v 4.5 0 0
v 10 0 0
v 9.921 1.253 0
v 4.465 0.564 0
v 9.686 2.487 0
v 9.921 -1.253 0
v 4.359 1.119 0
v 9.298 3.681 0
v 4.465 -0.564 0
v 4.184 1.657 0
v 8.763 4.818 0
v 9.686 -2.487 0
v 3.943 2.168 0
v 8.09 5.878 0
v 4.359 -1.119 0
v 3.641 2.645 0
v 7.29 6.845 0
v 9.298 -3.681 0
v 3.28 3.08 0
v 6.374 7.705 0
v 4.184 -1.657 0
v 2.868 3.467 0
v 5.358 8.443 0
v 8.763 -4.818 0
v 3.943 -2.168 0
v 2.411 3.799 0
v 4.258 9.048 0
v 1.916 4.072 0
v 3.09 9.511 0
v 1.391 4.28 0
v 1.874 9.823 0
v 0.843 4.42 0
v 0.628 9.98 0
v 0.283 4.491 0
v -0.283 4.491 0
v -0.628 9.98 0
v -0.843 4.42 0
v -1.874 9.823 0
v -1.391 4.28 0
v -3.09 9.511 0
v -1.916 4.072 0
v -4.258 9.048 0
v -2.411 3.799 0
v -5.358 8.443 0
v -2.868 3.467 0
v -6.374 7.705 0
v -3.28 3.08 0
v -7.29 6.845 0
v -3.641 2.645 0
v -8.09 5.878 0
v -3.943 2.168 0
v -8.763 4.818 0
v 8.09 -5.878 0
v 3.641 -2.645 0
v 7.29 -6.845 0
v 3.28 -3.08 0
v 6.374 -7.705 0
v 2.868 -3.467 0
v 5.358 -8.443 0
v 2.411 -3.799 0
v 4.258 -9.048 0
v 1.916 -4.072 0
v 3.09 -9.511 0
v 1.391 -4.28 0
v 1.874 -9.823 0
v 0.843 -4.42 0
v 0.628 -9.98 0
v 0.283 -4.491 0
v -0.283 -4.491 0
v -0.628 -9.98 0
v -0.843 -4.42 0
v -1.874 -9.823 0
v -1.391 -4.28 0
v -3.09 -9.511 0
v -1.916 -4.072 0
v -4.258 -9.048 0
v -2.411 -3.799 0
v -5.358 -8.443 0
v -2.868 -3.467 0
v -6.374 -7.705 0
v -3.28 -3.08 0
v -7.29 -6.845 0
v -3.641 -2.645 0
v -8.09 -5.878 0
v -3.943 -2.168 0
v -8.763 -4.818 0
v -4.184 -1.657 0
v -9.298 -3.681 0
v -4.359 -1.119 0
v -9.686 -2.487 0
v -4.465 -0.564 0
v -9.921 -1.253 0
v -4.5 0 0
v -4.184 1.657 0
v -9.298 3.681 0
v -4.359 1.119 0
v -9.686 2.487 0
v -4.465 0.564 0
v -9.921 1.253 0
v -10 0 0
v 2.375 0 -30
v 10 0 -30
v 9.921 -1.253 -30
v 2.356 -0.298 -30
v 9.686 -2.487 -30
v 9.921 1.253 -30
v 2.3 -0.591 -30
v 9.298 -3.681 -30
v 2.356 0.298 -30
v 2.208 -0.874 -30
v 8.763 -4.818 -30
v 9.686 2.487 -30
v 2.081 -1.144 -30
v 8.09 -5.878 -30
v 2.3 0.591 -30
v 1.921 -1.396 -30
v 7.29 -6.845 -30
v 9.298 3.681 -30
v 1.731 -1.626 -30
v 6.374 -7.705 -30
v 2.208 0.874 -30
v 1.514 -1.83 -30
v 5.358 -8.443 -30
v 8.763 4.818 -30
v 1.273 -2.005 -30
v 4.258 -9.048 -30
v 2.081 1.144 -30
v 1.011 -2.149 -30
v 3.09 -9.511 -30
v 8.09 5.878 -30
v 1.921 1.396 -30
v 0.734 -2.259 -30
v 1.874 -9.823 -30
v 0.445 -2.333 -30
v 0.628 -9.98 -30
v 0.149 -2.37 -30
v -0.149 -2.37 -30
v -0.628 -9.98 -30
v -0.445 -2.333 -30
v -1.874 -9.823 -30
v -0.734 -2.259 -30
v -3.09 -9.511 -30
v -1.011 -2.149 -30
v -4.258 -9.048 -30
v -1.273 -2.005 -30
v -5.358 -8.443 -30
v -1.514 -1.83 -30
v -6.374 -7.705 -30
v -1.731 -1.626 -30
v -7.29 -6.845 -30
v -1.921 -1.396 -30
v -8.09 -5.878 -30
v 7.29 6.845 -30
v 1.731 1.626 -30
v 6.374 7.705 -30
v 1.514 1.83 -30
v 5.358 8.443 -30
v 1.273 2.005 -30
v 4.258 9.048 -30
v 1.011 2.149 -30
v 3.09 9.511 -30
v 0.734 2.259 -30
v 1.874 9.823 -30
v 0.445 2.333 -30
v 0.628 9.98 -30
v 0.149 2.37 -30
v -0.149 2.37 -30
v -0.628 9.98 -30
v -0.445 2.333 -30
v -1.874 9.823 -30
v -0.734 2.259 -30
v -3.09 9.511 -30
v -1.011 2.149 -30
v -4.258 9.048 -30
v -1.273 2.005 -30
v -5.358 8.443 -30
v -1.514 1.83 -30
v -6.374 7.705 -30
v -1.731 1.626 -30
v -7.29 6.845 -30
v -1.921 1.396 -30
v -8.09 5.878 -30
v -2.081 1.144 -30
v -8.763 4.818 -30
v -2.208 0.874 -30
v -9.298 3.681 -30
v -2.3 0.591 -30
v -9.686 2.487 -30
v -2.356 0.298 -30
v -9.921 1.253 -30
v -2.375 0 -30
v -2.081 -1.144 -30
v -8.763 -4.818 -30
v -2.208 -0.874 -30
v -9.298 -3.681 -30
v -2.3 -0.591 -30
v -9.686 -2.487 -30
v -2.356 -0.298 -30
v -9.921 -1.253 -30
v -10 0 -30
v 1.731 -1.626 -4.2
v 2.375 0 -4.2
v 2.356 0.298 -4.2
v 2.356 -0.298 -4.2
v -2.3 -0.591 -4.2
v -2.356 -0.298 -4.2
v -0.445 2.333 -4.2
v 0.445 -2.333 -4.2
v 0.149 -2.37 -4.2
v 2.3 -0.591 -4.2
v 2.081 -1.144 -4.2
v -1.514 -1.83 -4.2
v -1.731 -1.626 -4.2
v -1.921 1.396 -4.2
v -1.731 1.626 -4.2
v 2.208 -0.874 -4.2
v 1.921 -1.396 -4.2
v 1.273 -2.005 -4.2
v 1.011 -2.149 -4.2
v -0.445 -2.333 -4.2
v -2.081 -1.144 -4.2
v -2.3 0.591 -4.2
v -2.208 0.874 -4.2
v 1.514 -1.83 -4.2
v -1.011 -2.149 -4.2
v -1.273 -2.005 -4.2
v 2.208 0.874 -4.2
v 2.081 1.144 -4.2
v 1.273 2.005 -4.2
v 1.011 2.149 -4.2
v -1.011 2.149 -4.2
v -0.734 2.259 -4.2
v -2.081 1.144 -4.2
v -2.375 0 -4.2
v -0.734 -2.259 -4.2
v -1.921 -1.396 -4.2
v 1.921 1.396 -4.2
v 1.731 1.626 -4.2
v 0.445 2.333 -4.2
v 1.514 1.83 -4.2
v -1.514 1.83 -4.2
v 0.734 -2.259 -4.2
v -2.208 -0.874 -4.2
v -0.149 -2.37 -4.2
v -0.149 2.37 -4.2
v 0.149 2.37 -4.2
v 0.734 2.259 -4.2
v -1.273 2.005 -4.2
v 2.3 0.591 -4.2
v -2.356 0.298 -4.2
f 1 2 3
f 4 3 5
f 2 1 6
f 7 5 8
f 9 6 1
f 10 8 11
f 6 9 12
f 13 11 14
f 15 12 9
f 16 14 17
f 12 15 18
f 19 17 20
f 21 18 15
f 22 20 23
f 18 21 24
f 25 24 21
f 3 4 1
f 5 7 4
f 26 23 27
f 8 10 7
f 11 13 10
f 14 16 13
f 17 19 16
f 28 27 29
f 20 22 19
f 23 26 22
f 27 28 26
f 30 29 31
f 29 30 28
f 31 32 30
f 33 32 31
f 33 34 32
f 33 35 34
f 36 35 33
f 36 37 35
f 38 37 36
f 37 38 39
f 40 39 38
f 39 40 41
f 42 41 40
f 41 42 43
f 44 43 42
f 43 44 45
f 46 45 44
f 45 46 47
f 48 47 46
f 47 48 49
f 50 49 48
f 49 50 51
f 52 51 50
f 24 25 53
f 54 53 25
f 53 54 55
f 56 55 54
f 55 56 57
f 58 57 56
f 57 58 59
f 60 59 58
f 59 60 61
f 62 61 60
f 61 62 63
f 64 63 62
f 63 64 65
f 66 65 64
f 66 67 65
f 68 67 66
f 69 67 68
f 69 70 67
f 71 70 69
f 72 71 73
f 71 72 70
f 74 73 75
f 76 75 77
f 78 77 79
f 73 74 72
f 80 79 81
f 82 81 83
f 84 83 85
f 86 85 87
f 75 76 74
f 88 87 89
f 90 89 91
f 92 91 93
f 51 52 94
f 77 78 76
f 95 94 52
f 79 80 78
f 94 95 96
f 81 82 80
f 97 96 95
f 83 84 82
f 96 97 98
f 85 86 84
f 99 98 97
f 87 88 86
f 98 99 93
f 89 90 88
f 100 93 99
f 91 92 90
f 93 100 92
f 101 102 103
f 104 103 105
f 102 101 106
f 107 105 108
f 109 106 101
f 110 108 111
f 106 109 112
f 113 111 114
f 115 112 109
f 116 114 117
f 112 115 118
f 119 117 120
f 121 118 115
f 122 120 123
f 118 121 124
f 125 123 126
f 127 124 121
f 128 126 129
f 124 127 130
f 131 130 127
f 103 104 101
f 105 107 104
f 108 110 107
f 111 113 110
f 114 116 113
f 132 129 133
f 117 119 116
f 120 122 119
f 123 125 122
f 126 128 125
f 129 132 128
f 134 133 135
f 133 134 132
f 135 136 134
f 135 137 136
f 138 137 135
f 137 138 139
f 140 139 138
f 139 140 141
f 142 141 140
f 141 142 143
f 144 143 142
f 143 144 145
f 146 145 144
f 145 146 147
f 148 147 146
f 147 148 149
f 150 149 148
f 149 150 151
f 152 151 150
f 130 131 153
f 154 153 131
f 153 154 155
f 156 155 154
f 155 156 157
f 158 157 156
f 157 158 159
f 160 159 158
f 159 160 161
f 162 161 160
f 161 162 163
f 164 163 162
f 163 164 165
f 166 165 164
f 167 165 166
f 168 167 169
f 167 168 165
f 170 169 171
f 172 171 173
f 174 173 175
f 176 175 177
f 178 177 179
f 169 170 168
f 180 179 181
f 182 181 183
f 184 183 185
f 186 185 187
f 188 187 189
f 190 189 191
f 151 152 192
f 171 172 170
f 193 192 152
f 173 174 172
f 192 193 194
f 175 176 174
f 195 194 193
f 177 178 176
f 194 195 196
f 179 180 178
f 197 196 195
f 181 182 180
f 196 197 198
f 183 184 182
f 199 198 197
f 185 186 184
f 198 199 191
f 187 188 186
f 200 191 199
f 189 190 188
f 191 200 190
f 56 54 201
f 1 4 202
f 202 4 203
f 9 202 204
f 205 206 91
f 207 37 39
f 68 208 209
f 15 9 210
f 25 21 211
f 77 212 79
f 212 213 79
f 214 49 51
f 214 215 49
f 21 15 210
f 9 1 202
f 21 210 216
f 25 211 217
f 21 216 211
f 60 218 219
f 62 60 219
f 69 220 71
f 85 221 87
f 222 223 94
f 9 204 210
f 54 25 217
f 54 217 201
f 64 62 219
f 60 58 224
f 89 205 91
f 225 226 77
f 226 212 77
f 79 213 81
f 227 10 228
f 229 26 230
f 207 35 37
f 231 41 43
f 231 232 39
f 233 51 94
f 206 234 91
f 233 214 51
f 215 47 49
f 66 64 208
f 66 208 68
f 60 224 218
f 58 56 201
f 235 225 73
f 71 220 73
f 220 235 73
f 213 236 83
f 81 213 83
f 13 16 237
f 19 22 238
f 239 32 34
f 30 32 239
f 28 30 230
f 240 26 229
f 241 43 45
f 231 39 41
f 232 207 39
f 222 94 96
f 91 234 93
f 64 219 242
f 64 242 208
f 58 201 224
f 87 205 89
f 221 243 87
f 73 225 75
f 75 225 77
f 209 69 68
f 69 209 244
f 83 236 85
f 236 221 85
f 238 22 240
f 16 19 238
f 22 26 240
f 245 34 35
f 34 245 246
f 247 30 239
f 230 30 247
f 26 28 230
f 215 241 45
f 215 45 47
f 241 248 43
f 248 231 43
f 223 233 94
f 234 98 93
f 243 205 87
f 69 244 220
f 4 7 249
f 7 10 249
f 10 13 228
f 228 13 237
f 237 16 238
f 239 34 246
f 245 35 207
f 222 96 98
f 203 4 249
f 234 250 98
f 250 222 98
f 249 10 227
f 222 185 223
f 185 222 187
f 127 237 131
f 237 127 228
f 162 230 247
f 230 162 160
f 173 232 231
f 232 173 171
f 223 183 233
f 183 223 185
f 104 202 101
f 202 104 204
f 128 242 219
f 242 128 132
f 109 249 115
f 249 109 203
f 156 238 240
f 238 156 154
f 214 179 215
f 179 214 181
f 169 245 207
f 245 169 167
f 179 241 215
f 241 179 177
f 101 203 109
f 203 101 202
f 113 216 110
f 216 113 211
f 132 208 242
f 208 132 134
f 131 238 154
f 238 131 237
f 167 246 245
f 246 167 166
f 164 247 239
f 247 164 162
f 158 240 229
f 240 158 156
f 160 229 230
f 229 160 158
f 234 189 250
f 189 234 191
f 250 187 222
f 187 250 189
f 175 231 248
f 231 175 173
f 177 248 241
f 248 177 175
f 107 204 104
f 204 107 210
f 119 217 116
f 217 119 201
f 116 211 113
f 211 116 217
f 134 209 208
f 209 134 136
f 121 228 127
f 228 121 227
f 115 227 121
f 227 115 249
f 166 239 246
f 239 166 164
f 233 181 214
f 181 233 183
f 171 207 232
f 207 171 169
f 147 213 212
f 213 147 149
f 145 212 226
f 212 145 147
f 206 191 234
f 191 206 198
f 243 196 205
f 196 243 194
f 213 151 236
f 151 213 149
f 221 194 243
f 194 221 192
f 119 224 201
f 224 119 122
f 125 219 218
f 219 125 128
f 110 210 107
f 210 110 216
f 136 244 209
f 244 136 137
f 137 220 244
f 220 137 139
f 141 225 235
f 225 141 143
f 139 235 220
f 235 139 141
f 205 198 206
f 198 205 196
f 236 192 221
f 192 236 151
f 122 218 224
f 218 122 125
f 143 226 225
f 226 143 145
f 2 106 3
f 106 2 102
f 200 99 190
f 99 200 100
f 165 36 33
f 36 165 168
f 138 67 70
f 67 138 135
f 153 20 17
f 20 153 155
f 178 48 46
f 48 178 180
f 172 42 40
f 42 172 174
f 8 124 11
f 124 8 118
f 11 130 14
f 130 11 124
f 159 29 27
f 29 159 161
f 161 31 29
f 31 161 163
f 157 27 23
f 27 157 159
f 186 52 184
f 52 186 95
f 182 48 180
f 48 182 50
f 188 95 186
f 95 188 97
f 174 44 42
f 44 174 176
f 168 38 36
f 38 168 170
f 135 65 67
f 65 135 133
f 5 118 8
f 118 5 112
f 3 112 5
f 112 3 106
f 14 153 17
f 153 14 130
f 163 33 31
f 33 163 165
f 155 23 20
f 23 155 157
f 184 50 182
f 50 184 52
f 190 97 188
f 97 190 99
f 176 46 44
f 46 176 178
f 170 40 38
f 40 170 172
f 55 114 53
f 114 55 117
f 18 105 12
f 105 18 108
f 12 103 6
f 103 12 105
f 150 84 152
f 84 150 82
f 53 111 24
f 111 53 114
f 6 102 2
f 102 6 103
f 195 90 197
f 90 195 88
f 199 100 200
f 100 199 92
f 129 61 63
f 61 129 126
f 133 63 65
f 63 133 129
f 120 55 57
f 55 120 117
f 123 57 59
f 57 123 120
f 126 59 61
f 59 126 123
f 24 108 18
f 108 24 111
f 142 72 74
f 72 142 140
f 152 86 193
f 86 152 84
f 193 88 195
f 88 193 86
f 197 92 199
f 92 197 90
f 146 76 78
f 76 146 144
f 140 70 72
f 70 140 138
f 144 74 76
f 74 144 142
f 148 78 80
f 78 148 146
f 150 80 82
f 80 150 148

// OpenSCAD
$fn = 50;


difference() {
	union() {
		translate(v = [0, 0, -30.0000000000]) {
			cylinder(h = 30, r = 10.0000000000);
		}
	}
	union() {
		translate(v = [0, 0, 0]) {
			rotate(a = [0, 0, 0]) {
				difference() {
					union() {
						#translate(v = [0, 0, -30.0000000000]) {
							cylinder(h = 30, r = 2.2500000000);
						}
						#translate(v = [0, 0, -4.2000000000]) {
							cylinder(h = 4.2000000000, r = 10.0000000000, r1 = 2.3750000000, r2 = 4.5000000000);
						}
						#translate(v = [0, 0, -30.0000000000]) {
							cylinder(h = 30, r = 2.3750000000);
						}
						#translate(v = [0, 0, -30.0000000000]) {
							cylinder(h = 30, r = 2.2500000000);
						}
					}
					union();
				}
			}
		}
	}
}
